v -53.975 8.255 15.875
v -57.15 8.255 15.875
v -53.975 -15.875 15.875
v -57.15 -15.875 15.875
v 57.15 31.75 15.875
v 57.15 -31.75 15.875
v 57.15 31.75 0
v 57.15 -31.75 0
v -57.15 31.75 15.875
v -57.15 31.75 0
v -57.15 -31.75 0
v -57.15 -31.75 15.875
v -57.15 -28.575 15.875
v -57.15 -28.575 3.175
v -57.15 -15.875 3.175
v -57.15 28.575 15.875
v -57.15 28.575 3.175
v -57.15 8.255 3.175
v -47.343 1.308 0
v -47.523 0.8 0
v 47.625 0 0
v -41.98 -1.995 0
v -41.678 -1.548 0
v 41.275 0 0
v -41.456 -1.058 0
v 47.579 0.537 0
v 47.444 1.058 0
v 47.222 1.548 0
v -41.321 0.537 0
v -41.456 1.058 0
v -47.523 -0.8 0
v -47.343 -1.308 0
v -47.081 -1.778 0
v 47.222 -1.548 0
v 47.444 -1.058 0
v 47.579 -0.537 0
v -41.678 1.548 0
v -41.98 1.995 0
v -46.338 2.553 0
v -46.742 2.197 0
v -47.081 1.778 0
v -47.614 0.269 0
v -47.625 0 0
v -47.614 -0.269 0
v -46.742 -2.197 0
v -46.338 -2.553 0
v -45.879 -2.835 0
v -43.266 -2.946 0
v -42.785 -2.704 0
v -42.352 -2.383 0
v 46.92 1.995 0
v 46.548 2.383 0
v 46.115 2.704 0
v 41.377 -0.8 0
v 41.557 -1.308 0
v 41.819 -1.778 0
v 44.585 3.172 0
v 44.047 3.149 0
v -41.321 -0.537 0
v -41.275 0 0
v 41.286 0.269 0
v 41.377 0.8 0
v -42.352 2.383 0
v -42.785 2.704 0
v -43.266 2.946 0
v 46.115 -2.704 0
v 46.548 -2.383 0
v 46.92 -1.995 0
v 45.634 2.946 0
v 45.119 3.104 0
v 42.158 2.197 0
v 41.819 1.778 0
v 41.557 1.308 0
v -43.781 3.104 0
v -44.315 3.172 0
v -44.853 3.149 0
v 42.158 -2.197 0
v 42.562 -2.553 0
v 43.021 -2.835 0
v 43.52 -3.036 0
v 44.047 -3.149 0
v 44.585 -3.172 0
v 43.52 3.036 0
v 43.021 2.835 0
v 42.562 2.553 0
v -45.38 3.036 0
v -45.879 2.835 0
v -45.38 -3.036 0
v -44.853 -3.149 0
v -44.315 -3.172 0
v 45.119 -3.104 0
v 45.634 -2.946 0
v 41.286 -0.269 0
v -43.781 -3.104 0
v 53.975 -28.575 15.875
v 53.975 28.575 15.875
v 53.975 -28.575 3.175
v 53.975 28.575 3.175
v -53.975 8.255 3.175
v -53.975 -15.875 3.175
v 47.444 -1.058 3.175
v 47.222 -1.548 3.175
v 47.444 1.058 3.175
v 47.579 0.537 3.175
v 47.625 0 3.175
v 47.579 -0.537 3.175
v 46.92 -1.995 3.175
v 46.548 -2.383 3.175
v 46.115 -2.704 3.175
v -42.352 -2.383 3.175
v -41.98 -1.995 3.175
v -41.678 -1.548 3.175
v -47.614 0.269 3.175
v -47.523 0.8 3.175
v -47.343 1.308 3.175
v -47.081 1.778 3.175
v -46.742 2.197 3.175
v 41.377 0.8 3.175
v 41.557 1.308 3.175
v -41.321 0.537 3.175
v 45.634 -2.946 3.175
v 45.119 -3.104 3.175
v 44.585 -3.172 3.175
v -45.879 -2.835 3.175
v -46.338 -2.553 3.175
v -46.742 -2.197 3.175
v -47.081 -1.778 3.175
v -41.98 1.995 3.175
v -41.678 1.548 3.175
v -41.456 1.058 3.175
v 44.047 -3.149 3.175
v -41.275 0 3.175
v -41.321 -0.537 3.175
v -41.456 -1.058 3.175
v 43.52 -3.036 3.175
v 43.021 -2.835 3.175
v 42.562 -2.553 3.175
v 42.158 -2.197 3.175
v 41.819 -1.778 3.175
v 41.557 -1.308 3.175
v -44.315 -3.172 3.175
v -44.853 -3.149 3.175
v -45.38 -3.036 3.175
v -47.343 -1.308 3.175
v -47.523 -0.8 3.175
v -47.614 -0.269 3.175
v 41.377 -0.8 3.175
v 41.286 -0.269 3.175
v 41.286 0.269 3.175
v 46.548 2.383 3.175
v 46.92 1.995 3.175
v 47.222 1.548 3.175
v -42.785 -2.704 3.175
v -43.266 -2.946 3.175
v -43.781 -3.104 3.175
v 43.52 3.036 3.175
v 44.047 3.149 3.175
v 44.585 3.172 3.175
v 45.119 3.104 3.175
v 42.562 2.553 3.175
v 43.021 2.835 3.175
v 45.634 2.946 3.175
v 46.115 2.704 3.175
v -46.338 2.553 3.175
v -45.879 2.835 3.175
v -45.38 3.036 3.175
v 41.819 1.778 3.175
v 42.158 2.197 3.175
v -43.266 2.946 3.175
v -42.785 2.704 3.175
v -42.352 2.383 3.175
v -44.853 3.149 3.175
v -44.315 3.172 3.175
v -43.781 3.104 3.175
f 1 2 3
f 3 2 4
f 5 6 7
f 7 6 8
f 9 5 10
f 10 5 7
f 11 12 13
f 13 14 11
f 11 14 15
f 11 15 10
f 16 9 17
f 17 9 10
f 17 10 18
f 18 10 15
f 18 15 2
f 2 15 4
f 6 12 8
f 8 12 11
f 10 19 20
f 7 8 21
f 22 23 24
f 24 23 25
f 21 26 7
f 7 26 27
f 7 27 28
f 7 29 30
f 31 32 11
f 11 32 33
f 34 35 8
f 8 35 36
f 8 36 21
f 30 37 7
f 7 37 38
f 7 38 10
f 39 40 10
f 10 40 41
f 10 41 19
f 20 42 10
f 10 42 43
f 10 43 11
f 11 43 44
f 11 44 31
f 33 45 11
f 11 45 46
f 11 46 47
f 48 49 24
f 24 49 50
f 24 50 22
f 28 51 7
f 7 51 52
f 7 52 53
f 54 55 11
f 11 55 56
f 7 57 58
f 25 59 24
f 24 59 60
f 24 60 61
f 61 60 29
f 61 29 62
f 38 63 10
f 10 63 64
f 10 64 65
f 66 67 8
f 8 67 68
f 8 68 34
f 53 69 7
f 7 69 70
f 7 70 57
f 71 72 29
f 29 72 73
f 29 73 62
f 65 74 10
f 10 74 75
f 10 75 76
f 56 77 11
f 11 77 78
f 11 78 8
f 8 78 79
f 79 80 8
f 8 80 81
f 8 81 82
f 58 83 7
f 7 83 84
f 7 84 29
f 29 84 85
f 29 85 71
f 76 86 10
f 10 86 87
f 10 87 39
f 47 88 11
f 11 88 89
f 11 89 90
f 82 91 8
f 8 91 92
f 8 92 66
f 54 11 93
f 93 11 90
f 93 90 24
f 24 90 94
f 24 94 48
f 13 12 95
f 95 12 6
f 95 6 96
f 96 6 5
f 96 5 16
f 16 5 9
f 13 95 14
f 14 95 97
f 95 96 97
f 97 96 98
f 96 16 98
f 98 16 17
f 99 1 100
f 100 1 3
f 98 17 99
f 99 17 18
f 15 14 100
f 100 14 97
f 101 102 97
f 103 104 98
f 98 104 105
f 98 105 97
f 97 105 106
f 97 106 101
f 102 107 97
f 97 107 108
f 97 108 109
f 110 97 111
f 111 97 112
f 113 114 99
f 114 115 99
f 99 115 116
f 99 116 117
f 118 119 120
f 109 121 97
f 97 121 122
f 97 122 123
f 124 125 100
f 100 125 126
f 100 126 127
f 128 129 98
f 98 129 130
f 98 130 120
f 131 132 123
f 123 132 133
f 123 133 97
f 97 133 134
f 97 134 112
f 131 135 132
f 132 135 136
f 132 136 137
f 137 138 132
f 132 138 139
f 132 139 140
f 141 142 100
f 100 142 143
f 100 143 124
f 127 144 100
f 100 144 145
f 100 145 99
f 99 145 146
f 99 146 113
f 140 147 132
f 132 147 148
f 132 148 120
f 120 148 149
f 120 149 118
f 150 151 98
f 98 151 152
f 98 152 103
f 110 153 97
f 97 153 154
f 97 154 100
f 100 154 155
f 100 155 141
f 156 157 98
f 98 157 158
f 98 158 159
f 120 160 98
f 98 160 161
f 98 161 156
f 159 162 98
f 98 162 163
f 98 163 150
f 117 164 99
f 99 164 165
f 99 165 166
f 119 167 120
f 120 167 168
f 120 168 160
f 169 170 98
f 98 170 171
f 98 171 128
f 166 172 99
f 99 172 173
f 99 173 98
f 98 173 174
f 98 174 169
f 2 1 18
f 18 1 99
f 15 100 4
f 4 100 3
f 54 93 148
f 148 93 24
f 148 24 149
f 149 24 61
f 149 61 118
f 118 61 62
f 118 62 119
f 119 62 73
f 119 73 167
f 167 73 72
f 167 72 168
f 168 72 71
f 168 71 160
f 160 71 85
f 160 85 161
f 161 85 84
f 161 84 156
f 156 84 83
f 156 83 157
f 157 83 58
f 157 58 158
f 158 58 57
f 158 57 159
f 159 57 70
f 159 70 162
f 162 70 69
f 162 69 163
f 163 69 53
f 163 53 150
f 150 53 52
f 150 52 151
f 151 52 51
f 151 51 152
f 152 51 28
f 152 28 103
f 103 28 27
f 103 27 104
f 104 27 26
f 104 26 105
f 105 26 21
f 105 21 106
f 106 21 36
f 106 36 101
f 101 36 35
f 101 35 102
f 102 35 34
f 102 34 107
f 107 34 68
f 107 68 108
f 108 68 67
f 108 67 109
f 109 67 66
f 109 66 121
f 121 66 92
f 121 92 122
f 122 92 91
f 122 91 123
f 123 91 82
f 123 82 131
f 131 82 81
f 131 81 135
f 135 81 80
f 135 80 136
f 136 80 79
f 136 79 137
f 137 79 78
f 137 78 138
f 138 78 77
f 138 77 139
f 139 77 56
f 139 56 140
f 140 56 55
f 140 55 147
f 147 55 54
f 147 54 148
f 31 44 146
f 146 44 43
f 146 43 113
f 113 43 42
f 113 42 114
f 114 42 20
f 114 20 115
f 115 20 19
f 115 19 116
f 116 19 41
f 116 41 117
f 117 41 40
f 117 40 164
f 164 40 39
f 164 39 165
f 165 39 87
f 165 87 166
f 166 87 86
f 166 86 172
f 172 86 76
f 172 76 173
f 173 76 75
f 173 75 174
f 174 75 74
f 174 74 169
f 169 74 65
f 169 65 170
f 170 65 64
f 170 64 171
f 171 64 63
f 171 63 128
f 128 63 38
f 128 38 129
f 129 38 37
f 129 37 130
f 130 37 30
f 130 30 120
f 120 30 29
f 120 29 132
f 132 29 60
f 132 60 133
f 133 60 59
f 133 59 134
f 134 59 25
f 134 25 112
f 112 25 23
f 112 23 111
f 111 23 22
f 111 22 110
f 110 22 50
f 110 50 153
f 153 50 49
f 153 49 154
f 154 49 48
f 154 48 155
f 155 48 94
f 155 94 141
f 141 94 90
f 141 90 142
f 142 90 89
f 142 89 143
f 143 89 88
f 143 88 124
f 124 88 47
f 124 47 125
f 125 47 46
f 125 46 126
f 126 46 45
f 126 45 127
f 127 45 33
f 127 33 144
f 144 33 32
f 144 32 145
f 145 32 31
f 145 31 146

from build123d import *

# Parameters (mm, degrees)
SKETCH1_W           = 114.3
SKETCH1_H           = 63.5
BOSS_EXTRUDE1_DEPTH = 3.175
SKETCH2_W           = 114.3
SKETCH2_H           = 63.5
SKETCH2_W_2         = 107.95
SKETCH2_H_2         = 57.15
BOSS_EXTRUDE2_DEPTH = 12.7
CUT_EXTRUDE1_REACH  = 121.685
SKETCH3_W           = 12.7
SKETCH3_H           = 12.7
SKETCH3_H_2         = 20.32
CUT_EXTRUDE2_REACH  = 68.599
SKETCH4_R           = 3.175


with BuildPart() as part:
    # Sketch1 → Boss-Extrude1 (new body)
    with BuildSketch(Plane.XY):
        Rectangle(SKETCH1_W, SKETCH1_H)
    extrude(amount=BOSS_EXTRUDE1_DEPTH)

    # Sketch2 → Boss-Extrude2 (add)
    with BuildSketch(Plane.XY.offset(3.175)):
        Rectangle(SKETCH2_W, SKETCH2_H)
        Rectangle(SKETCH2_W_2, SKETCH2_H_2, mode=Mode.SUBTRACT)
    extrude(amount=BOSS_EXTRUDE2_DEPTH)

    # Sketch3 → Cut-Extrude1 (cut, up to next)
    with BuildSketch(Plane.ZY.offset(57.15), mode=Mode.PRIVATE) as cut_extrude1_sk1:
        with Locations((9.525, -22.225)):
            Rectangle(SKETCH3_W, SKETCH3_H)
    cut_extrude1_tool1 = extrude(cut_extrude1_sk1.sketch, amount=-CUT_EXTRUDE1_REACH, mode=Mode.PRIVATE) & part.part
    # Sketch3 → Cut-Extrude1 (cut, up to next)
    with BuildSketch(Plane.ZY.offset(57.15), mode=Mode.PRIVATE) as cut_extrude1_sk2:
        with Locations((9.525, 18.415)):
            Rectangle(SKETCH3_W, SKETCH3_H_2)
    cut_extrude1_tool2 = extrude(cut_extrude1_sk2.sketch, amount=-CUT_EXTRUDE1_REACH, mode=Mode.PRIVATE) & part.part
    add(cut_extrude1_tool1.solids().sort_by_distance((-57.15, -22.225, 9.525))[0], mode=Mode.SUBTRACT)
    add(cut_extrude1_tool2.solids().sort_by_distance((-57.15, 18.415, 9.525))[0], mode=Mode.SUBTRACT)

    # Sketch4 → Cut-Extrude2 (cut, up to next)
    with BuildSketch(Plane.XY.offset(3.175), mode=Mode.PRIVATE) as cut_extrude2_sk1:
        with Locations((-44.45, 0)):
            Circle(SKETCH4_R)
    cut_extrude2_tool1 = extrude(cut_extrude2_sk1.sketch, amount=-CUT_EXTRUDE2_REACH, mode=Mode.PRIVATE) & part.part
    # Sketch4 → Cut-Extrude2 (cut, up to next)
    with BuildSketch(Plane.XY.offset(3.175), mode=Mode.PRIVATE) as cut_extrude2_sk2:
        with Locations((44.45, 0)):
            Circle(SKETCH4_R)
    cut_extrude2_tool2 = extrude(cut_extrude2_sk2.sketch, amount=-CUT_EXTRUDE2_REACH, mode=Mode.PRIVATE) & part.part
    add(cut_extrude2_tool1.solids().sort_by_distance((-44.45, 0, 3.175))[0], mode=Mode.SUBTRACT)
    add(cut_extrude2_tool2.solids().sort_by_distance((44.45, 0, 3.175))[0], mode=Mode.SUBTRACT)


solid = part.part
